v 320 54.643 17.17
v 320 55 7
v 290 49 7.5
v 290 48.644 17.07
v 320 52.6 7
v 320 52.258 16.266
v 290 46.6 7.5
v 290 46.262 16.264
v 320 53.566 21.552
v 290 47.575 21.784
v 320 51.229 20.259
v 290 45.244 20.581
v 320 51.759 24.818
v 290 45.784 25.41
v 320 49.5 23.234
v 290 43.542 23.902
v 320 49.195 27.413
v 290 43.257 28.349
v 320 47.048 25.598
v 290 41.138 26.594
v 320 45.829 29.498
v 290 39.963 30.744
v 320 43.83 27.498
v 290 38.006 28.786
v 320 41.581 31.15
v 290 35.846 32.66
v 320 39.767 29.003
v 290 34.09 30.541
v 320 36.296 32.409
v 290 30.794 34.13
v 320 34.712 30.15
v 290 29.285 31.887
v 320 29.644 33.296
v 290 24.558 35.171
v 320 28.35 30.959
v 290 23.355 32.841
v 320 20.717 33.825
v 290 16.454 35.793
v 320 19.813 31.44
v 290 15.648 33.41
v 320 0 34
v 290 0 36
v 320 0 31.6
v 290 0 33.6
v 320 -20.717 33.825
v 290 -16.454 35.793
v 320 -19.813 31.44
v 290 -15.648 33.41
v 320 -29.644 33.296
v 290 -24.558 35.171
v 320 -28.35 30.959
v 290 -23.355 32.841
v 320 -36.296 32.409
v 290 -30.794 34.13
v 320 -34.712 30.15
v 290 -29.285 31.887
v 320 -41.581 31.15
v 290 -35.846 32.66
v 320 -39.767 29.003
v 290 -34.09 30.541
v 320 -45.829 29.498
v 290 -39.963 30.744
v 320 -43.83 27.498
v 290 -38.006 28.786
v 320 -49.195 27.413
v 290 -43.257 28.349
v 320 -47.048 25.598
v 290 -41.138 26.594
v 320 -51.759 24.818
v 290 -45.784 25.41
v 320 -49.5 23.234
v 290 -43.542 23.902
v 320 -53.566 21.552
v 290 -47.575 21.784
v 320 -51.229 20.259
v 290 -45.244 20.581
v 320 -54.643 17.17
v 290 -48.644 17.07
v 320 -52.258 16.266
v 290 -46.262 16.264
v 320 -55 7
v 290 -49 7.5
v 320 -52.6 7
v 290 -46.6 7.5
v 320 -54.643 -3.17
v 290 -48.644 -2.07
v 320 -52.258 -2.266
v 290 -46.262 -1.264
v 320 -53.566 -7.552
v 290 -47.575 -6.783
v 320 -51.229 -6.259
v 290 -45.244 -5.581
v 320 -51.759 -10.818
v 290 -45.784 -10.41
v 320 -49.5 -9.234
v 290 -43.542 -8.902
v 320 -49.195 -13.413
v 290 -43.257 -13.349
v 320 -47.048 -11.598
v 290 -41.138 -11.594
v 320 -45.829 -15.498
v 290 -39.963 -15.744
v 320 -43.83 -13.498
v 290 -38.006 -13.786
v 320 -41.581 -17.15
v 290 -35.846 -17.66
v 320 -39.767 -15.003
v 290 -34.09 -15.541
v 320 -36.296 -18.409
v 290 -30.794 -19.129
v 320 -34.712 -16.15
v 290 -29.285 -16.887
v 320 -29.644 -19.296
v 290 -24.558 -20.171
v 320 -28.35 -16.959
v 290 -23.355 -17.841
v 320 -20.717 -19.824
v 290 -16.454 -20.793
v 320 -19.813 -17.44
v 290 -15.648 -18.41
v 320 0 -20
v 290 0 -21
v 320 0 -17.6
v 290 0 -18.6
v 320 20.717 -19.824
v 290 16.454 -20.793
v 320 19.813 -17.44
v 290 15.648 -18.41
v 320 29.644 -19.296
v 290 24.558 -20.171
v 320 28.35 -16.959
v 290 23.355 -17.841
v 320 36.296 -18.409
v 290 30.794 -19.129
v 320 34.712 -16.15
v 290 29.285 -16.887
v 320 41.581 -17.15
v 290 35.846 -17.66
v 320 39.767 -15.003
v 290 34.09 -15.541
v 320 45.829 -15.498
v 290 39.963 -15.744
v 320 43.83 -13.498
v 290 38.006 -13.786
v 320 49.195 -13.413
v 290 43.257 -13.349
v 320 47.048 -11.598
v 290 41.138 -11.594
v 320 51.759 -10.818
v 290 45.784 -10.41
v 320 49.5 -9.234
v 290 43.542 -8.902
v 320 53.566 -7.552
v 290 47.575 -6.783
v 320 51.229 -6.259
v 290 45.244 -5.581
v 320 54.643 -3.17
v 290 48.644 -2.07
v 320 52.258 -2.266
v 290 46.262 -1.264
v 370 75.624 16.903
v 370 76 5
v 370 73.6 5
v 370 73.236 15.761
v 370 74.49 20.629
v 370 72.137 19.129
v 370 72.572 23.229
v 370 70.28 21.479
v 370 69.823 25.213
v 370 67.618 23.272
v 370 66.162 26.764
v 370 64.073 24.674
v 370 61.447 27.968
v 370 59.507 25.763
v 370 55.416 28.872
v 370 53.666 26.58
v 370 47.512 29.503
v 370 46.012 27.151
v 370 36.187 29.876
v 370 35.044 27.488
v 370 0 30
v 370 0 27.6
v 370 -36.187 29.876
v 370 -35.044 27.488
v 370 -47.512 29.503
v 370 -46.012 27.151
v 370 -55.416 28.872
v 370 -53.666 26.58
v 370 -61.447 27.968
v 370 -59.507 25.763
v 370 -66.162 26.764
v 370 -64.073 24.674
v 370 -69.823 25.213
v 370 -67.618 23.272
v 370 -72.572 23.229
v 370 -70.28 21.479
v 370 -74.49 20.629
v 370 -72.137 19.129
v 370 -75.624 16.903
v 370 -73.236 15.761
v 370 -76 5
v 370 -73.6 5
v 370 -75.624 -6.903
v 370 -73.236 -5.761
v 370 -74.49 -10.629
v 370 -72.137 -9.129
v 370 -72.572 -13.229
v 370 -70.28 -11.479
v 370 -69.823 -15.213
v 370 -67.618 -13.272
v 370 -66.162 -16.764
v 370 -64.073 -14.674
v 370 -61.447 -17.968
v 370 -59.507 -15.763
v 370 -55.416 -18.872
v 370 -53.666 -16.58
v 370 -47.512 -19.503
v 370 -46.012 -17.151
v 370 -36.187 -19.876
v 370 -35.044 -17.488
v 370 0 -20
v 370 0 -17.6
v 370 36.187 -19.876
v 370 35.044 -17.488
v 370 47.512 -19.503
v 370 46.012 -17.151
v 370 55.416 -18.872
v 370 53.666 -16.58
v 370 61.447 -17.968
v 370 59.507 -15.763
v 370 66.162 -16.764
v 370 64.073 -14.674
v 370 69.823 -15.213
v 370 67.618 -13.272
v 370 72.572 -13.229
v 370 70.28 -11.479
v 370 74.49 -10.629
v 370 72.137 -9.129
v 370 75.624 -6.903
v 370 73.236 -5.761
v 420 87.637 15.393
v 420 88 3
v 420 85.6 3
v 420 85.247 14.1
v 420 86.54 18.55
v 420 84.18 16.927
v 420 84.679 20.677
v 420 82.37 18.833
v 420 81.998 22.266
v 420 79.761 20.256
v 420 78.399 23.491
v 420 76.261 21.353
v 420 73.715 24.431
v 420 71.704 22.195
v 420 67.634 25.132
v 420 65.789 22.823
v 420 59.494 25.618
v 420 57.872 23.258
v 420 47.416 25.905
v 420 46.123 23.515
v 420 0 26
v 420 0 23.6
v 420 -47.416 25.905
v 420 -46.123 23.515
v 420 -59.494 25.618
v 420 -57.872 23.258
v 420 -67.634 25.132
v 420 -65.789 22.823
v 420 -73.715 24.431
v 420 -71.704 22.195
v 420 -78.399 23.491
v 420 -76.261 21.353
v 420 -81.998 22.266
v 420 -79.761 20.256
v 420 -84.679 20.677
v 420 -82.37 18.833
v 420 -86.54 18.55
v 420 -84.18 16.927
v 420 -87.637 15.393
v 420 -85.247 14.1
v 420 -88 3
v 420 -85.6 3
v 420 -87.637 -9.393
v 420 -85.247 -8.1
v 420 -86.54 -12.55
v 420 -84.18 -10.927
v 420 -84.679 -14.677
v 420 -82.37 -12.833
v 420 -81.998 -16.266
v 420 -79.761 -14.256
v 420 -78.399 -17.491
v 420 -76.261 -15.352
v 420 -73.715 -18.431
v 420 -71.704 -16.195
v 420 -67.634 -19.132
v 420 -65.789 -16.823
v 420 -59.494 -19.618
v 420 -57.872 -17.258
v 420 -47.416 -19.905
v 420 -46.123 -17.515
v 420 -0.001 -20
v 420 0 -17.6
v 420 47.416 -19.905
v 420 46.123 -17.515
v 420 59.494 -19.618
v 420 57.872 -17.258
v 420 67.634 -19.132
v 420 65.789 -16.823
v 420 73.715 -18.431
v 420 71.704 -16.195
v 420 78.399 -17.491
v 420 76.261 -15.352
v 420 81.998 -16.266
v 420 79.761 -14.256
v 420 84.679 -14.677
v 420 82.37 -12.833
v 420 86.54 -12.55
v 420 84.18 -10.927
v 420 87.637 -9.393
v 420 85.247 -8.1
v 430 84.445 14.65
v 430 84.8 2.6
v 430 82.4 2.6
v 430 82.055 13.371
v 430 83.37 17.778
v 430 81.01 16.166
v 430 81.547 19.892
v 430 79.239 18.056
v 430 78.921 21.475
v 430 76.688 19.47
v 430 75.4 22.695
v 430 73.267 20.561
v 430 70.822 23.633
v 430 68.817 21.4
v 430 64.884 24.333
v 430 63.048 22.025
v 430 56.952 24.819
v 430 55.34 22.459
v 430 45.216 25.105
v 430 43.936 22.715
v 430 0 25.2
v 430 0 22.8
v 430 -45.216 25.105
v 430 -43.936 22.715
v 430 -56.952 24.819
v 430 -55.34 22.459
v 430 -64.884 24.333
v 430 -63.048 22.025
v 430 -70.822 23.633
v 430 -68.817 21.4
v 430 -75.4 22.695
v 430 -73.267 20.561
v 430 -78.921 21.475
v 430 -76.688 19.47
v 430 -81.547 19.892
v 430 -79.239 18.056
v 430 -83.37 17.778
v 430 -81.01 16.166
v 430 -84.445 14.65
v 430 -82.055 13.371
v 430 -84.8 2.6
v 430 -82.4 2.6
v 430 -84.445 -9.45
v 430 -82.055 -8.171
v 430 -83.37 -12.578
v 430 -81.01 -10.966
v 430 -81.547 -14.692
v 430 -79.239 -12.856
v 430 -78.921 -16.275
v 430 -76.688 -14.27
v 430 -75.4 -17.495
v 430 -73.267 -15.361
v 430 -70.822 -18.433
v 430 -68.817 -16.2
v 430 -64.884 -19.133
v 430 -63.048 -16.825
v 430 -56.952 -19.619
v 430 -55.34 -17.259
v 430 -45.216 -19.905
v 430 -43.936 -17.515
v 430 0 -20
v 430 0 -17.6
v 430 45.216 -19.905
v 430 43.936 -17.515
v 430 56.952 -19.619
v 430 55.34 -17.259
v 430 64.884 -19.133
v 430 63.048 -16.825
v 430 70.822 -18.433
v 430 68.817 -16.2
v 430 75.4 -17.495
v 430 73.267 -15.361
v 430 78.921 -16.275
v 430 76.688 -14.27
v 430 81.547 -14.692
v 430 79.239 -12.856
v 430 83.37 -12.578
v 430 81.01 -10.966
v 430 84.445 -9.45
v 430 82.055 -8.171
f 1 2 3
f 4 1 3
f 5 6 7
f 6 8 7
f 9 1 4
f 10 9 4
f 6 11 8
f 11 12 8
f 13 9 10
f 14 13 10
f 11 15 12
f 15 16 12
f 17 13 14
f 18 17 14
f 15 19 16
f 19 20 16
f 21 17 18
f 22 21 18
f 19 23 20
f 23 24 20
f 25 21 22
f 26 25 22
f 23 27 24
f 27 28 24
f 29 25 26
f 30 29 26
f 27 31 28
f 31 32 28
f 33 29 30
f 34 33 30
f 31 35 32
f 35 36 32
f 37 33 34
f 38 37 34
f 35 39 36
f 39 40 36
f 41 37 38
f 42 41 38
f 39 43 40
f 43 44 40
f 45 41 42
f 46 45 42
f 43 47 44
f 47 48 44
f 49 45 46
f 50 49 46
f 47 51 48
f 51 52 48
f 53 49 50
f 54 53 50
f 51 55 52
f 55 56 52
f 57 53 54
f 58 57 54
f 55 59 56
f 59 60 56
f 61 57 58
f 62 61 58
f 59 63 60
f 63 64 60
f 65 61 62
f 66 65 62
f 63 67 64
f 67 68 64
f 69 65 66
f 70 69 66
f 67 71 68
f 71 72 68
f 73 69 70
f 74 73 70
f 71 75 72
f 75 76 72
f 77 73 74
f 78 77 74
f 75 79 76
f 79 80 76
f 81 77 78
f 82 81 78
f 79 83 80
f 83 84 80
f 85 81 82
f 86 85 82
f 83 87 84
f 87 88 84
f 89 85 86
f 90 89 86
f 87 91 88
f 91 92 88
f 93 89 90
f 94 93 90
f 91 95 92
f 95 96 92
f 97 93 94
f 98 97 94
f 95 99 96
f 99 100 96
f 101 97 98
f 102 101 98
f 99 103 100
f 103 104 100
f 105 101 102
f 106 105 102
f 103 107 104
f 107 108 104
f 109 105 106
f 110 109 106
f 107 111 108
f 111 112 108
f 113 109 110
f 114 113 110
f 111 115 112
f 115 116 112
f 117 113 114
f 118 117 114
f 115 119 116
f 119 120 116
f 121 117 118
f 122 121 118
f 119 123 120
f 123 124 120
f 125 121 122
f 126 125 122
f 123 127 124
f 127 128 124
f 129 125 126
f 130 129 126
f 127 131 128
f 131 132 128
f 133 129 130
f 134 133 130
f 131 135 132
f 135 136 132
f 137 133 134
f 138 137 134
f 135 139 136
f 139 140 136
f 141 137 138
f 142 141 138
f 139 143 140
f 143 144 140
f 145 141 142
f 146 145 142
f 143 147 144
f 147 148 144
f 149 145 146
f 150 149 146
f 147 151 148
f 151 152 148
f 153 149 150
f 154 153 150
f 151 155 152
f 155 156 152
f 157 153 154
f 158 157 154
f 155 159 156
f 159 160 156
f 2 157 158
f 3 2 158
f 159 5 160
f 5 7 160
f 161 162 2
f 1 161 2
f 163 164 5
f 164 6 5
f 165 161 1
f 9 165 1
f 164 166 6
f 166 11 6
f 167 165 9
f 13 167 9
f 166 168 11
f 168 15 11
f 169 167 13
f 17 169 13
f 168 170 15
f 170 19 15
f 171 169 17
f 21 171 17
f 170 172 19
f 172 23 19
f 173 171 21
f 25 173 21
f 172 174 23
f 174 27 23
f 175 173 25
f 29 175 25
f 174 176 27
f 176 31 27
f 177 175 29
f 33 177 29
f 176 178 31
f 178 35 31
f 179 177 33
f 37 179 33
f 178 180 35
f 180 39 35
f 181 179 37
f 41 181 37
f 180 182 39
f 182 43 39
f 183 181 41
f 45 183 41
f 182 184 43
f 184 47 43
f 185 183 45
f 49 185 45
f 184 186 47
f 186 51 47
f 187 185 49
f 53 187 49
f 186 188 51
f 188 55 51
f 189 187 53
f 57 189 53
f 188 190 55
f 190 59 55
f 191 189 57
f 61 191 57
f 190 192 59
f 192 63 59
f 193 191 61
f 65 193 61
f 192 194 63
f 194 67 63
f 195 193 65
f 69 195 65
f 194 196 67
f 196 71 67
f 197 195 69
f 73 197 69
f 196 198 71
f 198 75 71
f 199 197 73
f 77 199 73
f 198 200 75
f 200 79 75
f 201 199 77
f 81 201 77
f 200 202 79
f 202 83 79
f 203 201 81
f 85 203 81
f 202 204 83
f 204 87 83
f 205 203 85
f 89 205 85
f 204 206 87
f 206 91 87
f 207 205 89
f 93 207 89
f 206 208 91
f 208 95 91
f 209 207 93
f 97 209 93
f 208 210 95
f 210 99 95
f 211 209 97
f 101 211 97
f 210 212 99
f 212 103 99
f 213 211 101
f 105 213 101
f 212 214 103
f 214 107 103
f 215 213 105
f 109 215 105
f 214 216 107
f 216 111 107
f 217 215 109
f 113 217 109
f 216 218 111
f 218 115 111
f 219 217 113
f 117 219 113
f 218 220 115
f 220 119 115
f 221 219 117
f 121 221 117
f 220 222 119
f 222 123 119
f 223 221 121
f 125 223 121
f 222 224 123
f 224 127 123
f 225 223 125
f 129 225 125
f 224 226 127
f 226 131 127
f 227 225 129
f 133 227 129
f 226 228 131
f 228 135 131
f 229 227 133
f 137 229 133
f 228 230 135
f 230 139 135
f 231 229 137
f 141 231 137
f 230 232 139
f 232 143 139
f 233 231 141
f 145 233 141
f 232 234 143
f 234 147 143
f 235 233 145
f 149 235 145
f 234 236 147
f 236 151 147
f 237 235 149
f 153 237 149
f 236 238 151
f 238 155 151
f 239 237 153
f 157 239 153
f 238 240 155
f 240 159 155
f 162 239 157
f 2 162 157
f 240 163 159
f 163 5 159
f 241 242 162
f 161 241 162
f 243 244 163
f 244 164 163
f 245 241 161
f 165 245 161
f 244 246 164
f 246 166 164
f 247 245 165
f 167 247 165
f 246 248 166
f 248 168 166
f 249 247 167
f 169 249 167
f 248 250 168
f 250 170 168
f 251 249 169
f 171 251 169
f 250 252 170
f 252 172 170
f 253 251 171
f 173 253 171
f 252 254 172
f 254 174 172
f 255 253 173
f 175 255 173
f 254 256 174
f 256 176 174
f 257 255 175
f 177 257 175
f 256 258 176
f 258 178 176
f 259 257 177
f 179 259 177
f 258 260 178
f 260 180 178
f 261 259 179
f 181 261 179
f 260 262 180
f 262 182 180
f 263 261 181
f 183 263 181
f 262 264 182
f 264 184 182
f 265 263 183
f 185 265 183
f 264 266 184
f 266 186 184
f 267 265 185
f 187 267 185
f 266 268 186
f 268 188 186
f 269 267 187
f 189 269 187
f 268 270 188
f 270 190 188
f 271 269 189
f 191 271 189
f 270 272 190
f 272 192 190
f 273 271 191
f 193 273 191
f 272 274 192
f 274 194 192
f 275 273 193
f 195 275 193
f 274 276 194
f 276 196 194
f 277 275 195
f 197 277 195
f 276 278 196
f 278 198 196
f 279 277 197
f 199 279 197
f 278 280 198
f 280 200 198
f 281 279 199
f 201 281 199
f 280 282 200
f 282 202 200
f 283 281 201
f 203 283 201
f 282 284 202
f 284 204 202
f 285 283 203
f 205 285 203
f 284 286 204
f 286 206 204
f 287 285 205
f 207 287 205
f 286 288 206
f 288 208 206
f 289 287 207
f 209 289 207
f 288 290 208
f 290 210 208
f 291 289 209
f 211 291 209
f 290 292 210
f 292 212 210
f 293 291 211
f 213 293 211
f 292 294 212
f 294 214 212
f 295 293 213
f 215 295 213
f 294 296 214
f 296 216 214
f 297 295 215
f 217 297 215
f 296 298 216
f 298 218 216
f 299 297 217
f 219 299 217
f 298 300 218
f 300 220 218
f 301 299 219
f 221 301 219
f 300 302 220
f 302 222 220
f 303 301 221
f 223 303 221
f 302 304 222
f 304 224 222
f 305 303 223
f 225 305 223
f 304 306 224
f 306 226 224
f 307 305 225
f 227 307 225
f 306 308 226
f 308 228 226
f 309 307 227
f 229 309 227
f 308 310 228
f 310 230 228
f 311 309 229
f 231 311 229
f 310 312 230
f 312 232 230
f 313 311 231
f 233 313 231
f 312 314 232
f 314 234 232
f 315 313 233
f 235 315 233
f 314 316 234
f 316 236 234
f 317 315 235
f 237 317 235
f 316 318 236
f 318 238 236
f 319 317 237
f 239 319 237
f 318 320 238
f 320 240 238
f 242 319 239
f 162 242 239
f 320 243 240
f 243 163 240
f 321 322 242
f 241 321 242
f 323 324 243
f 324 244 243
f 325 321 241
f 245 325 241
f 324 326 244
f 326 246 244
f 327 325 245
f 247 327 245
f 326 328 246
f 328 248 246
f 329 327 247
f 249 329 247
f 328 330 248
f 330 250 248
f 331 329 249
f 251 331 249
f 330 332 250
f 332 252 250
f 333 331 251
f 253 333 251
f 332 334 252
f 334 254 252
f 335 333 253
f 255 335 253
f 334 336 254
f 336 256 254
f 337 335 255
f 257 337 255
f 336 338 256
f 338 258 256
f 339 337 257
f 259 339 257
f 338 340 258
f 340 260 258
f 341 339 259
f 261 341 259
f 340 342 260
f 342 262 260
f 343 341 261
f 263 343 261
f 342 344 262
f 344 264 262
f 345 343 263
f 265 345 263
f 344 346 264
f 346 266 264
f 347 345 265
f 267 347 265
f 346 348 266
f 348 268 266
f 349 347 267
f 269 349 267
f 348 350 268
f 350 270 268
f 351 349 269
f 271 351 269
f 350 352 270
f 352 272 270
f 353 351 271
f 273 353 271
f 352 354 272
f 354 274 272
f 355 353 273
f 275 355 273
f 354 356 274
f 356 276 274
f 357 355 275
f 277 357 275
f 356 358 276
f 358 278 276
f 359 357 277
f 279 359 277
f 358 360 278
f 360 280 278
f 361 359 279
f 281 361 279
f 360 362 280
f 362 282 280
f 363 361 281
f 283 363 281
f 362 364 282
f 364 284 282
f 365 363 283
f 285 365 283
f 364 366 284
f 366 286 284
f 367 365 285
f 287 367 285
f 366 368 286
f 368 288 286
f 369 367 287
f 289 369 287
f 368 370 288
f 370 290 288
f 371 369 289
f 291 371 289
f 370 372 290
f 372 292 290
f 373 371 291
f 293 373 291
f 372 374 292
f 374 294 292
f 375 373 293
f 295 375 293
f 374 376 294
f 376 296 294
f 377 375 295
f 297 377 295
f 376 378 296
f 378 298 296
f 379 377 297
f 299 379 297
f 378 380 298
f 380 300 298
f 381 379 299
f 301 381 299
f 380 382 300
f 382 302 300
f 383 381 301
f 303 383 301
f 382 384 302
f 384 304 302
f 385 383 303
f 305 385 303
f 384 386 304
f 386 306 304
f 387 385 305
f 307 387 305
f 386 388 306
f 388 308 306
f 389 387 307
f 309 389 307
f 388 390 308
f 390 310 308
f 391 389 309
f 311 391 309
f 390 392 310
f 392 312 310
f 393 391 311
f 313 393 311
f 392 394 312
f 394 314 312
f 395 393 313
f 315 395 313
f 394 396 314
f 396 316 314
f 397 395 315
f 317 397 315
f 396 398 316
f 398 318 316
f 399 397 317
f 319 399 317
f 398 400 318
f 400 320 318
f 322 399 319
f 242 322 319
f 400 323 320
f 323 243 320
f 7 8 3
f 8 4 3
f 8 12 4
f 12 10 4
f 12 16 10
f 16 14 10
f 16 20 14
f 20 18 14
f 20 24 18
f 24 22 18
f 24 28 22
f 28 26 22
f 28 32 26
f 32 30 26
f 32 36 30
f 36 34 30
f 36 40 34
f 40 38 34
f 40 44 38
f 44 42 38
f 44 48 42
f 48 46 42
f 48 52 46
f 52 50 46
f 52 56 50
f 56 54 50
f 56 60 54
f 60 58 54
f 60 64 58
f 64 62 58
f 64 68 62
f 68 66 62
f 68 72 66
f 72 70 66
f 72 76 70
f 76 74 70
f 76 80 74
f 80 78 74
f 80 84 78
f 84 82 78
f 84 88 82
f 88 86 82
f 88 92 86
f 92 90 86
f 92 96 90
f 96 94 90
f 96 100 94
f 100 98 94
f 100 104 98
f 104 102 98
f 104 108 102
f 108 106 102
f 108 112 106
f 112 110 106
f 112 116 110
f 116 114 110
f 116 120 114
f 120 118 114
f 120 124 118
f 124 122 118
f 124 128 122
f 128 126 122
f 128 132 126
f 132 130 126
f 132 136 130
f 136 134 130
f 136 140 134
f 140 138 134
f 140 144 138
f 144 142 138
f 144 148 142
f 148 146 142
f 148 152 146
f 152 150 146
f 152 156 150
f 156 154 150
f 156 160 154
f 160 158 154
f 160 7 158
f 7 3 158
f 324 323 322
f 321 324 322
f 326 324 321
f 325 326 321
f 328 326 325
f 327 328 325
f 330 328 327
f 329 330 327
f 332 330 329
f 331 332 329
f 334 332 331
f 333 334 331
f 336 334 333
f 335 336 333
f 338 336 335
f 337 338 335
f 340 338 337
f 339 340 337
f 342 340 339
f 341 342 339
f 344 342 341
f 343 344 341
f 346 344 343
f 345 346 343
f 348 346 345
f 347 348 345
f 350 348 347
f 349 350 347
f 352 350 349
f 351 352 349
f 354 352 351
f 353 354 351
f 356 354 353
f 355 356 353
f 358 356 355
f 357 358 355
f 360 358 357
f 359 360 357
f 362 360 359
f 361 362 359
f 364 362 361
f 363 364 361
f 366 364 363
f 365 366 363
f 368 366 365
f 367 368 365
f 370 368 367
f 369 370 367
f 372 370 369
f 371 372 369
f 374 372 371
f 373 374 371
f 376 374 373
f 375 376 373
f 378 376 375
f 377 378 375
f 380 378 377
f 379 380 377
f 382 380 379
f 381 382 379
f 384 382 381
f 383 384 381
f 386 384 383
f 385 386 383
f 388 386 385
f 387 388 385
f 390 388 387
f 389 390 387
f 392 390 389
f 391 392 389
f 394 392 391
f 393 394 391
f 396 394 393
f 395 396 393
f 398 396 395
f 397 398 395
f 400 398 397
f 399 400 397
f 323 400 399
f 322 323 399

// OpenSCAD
polyhedron(points=[[290.0, 49.0, 7.5], [290.0, 48.64423, 17.070239], [290.0, 47.574723, 21.783495], [290.0, 45.784054, 25.410498], [290.0, 43.256713, 28.349284], [290.0, 39.962978, 30.743773], [290.0, 35.846137, 32.659517], [290.0, 30.793488, 34.129501], [290.0, 24.557588, 35.171013], [290.0, 16.454094, 35.793072], [290.0, 0.0, 36.0], [290.0, -16.454094, 35.793072], [290.0, -24.557588, 35.171013], [290.0, -30.793488, 34.129501], [290.0, -35.846137, 32.659517], [290.0, -39.962978, 30.743773], [290.0, -43.256713, 28.349284], [290.0, -45.784054, 25.410498], [290.0, -47.574723, 21.783495], [290.0, -48.64423, 17.070239], [290.0, -49.0, 7.5], [290.0, -48.64423, -2.070239], [290.0, -47.574723, -6.783495], [290.0, -45.784054, -10.410498], [290.0, -43.256713, -13.349284], [290.0, -39.962978, -15.743773], [290.0, -35.846137, -17.659517], [290.0, -30.793488, -19.129501], [290.0, -24.557588, -20.171013], [290.0, -16.454094, -20.793072], [290.0, -0.0, -21.0], [290.0, 16.454094, -20.793072], [290.0, 24.557588, -20.171013], [290.0, 30.793488, -19.129501], [290.0, 35.846137, -17.659517], [290.0, 39.962978, -15.743773], [290.0, 43.256713, -13.349284], [290.0, 45.784054, -10.410498], [290.0, 47.574723, -6.783495], [290.0, 48.64423, -2.070239], [290.0, 46.6, 7.5], [290.0, 46.261655, 16.264324], [290.0, 45.244533, 20.580674], [290.0, 43.54157, 23.902246], [290.0, 41.138017, 26.593555], [290.0, 38.005608, 28.786403], [290.0, 34.090408, 30.540821], [290.0, 29.285235, 31.887017], [290.0, 23.354767, 32.840822], [290.0, 15.64818, 33.410498], [290.0, 0.0, 33.6], [290.0, -15.64818, 33.410498], [290.0, -23.354767, 32.840822], [290.0, -29.285235, 31.887017], [290.0, -34.090408, 30.540821], [290.0, -38.005608, 28.786403], [290.0, -41.138017, 26.593555], [290.0, -43.54157, 23.902246], [290.0, -45.244533, 20.580674], [290.0, -46.261655, 16.264324], [290.0, -46.6, 7.5], [290.0, -46.261655, -1.264324], [290.0, -45.244533, -5.580674], [290.0, -43.54157, -8.902246], [290.0, -41.138017, -11.593555], [290.0, -38.005608, -13.786403], [290.0, -34.090408, -15.540821], [290.0, -29.285235, -16.887017], [290.0, -23.354767, -17.840822], [290.0, -15.64818, -18.410498], [290.0, -0.0, -18.6], [290.0, 15.64818, -18.410498], [290.0, 23.354767, -17.840822], [290.0, 29.285235, -16.887017], [290.0, 34.090408, -15.540821], [290.0, 38.005608, -13.786403], [290.0, 41.138017, -11.593555], [290.0, 43.54157, -8.902246], [290.0, 45.244533, -5.580674], [290.0, 46.261655, -1.264324], [320.0, 55.0, 7.0], [320.0, 54.642564, 17.17017], [320.0, 53.566385, 21.55236], [320.0, 51.758801, 24.818127], [320.0, 49.194816, 27.412675], [320.0, 45.82941, 29.498074], [320.0, 41.581374, 31.150183], [320.0, 36.296186, 32.408866], [320.0, 29.643696, 33.296225], [320.0, 20.717013, 33.824532], [320.0, 0.0, 34.0], [320.0, -20.717013, 33.824532], [320.0, -29.643696, 33.296225], [320.0, -36.296186, 32.408866], [320.0, -41.581374, 31.150183], [320.0, -45.82941, 29.498074], [320.0, -49.194816, 27.412675], [320.0, -51.758801, 24.818127], [320.0, -53.566385, 21.55236], [320.0, -54.642564, 17.17017], [320.0, -55.0, 7.0], [320.0, -54.642564, -3.17017], [320.0, -53.566385, -7.55236], [320.0, -51.758801, -10.818127], [320.0, -49.194816, -13.412675], [320.0, -45.82941, -15.498074], [320.0, -41.581374, -17.150183], [320.0, -36.296186, -18.408866], [320.0, -29.643696, -19.296225], [320.0, -20.717013, -19.824532], [320.0, -0.0, -20.0], [320.0, 20.717013, -19.824532], [320.0, 29.643696, -19.296225], [320.0, 36.296186, -18.408866], [320.0, 41.581374, -17.150183], [320.0, 45.82941, -15.498074], [320.0, 49.194816, -13.412675], [320.0, 51.758801, -10.818127], [320.0, 53.566385, -7.55236], [320.0, 54.642564, -3.17017], [320.0, 52.6, 7.0], [320.0, 52.258162, 16.266155], [320.0, 51.228942, 20.258817], [320.0, 49.500235, 23.234294], [320.0, 47.048134, 25.598215], [320.0, 43.829582, 27.498245], [320.0, 39.766914, 29.0035], [320.0, 34.712352, 30.1503], [320.0, 28.350153, 30.958783], [320.0, 19.812998, 31.440129], [320.0, 0.0, 31.6], [320.0, -19.812998, 31.440129], [320.0, -28.350153, 30.958783], [320.0, -34.712352, 30.1503], [320.0, -39.766914, 29.0035], [320.0, -43.829582, 27.498245], [320.0, -47.048134, 25.598215], [320.0, -49.500235, 23.234294], [320.0, -51.228942, 20.258817], [320.0, -52.258162, 16.266155], [320.0, -52.6, 7.0], [320.0, -52.258162, -2.266155], [320.0, -51.228942, -6.258817], [320.0, -49.500235, -9.234294], [320.0, -47.048134, -11.598215], [320.0, -43.829582, -13.498245], [320.0, -39.766914, -15.0035], [320.0, -34.712352, -16.1503], [320.0, -28.350153, -16.958783], [320.0, -19.812998, -17.440129], [320.0, -0.0, -17.6], [320.0, 19.812998, -17.440129], [320.0, 28.350153, -16.958783], [320.0, 34.712352, -16.1503], [320.0, 39.766914, -15.0035], [320.0, 43.829582, -13.498245], [320.0, 47.048134, -11.598215], [320.0, 49.500235, -9.234294], [320.0, 51.228942, -6.258817], [320.0, 52.258162, -2.266155], [370.0, 76.0, 5.0], [370.0, 75.624334, 16.903454], [370.0, 74.489682, 20.629063], [370.0, 72.571474, 23.228827], [370.0, 69.822702, 25.212847], [370.0, 66.161843, 26.763764], [370.0, 61.447054, 27.967994], [370.0, 55.415633, 28.872195], [370.0, 47.512353, 29.503185], [370.0, 36.186499, 29.876426], [370.0, 2.5e-05, 30.0], [370.0, -36.186499, 29.876426], [370.0, -47.512353, 29.503185], [370.0, -55.415633, 28.872195], [370.0, -61.447054, 27.967994], [370.0, -66.161843, 26.763764], [370.0, -69.822702, 25.212847], [370.0, -72.571474, 23.228827], [370.0, -74.489682, 20.629063], [370.0, -75.624334, 16.903454], [370.0, -76.0, 5.000011], [370.0, -75.624334, -6.903454], [370.0, -74.489682, -10.629063], [370.0, -72.571474, -13.228827], [370.0, -69.822702, -15.212847], [370.0, -66.161843, -16.763764], [370.0, -61.447054, -17.967994], [370.0, -55.415633, -18.872195], [370.0, -47.512353, -19.503185], [370.0, -36.186499, -19.876426], [370.0, -3.9e-05, -20.0], [370.0, 36.186499, -19.876426], [370.0, 47.512353, -19.503185], [370.0, 55.415633, -18.872195], [370.0, 61.447054, -17.967994], [370.0, 66.161843, -16.763764], [370.0, 69.822702, -15.212847], [370.0, 72.571474, -13.228827], [370.0, 74.489682, -10.629063], [370.0, 75.624334, -6.903454], [370.0, 73.6, 5.0], [370.0, 73.236197, 15.760722], [370.0, 72.137377, 19.128673], [370.0, 70.279744, 21.478859], [370.0, 67.617774, 23.272413], [370.0, 64.072521, 24.674443], [370.0, 59.506621, 25.763067], [370.0, 53.665666, 26.580465], [370.0, 46.011963, 27.150879], [370.0, 35.043768, 27.488289], [370.0, 2.4e-05, 27.6], [370.0, -35.043768, 27.488289], [370.0, -46.011963, 27.150879], [370.0, -53.665666, 26.580465], [370.0, -59.506621, 25.763067], [370.0, -64.072521, 24.674443], [370.0, -67.617774, 23.272413], [370.0, -70.279744, 21.478859], [370.0, -72.137377, 19.128673], [370.0, -73.236197, 15.760722], [370.0, -73.6, 5.00001], [370.0, -73.236197, -5.760722], [370.0, -72.137377, -9.128673], [370.0, -70.279744, -11.478859], [370.0, -67.617774, -13.272413], [370.0, -64.072521, -14.674443], [370.0, -59.506621, -15.763067], [370.0, -53.665666, -16.580465], [370.0, -46.011963, -17.150879], [370.0, -35.043768, -17.488289], [370.0, -3.7e-05, -17.6], [370.0, 35.043768, -17.488289], [370.0, 46.011963, -17.150879], [370.0, 53.665666, -16.580465], [370.0, 59.506621, -15.763067], [370.0, 64.072521, -14.674443], [370.0, 67.617774, -13.272413], [370.0, 70.279744, -11.478859], [370.0, 72.137377, -9.128673], [370.0, 73.236197, -5.760722], [420.0, 88.0, 3.0], [420.0, 87.637366, 15.392873], [420.0, 86.540244, 18.549698], [420.0, 84.679113, 20.677062], [420.0, 81.997741, 22.266407], [420.0, 78.399087, 23.490671], [420.0, 73.714949, 24.431228], [420.0, 67.633977, 25.132041], [420.0, 59.494497, 25.618473], [420.0, 47.416208, 25.905221], [420.0, 0.000347, 26.0], [420.0, -47.416208, 25.905221], [420.0, -59.494497, 25.618473], [420.0, -67.633977, 25.132041], [420.0, -73.714949, 24.431228], [420.0, -78.399087, 23.490671], [420.0, -81.997741, 22.266407], [420.0, -84.679113, 20.677062], [420.0, -86.540244, 18.549698], [420.0, -87.637366, 15.392873], [420.0, -88.0, 3.000114], [420.0, -87.637366, -9.392873], [420.0, -86.540244, -12.549698], [420.0, -84.679113, -14.677062], [420.0, -81.997741, -16.266407], [420.0, -78.399087, -17.490671], [420.0, -73.714949, -18.431228], [420.0, -67.633977, -19.132041], [420.0, -59.494497, -19.618473], [420.0, -47.416208, -19.905221], [420.0, -0.0005, -20.0], [420.0, 47.416208, -19.905221], [420.0, 59.494497, -19.618473], [420.0, 67.633977, -19.132041], [420.0, 73.714949, -18.431228], [420.0, 78.399087, -17.490671], [420.0, 81.997741, -16.266407], [420.0, 84.679113, -14.677062], [420.0, 86.540244, -12.549698], [420.0, 87.637366, -9.392873], [420.0, 85.6, 3.0], [420.0, 85.247256, 14.099703], [420.0, 84.180055, 16.927121], [420.0, 82.369683, 18.832499], [420.0, 79.761439, 20.255999], [420.0, 76.26093, 21.352514], [420.0, 71.704541, 22.194926], [420.0, 65.789414, 22.822611], [420.0, 57.871919, 23.258284], [420.0, 46.123039, 23.515111], [420.0, 0.000337, 23.6], [420.0, -46.123039, 23.515111], [420.0, -57.871919, 23.258284], [420.0, -65.789414, 22.822611], [420.0, -71.704541, 22.194926], [420.0, -76.26093, 21.352514], [420.0, -79.761439, 20.255999], [420.0, -82.369683, 18.832499], [420.0, -84.180055, 16.927121], [420.0, -85.247256, 14.099703], [420.0, -85.6, 3.000102], [420.0, -85.247256, -8.099703], [420.0, -84.180055, -10.927121], [420.0, -82.369683, -12.832499], [420.0, -79.761439, -14.255999], [420.0, -76.26093, -15.352514], [420.0, -71.704541, -16.194926], [420.0, -65.789414, -16.822611], [420.0, -57.871919, -17.258284], [420.0, -46.123039, -17.515111], [420.0, -0.000487, -17.6], [420.0, 46.123039, -17.515111], [420.0, 57.871919, -17.258284], [420.0, 65.789414, -16.822611], [420.0, 71.704541, -16.194926], [420.0, 76.26093, -15.352514], [420.0, 79.761439, -14.255999], [420.0, 82.369683, -12.832499], [420.0, 84.180055, -10.927121], [420.0, 85.247256, -8.099703], [430.0, 84.8, 2.6], [430.0, 84.444642, 14.650381], [430.0, 83.369686, 17.778229], [430.0, 81.546687, 19.892314], [430.0, 78.92145, 21.474588], [430.0, 75.400429, 22.694926], [430.0, 70.821464, 23.633311], [430.0, 64.884434, 24.332961], [430.0, 56.951939, 24.818808], [430.0, 45.21559, 25.105294], [430.0, 0.000271, 25.2], [430.0, -45.21559, 25.105294], [430.0, -56.951939, 24.818808], [430.0, -64.884434, 24.332961], [430.0, -70.821464, 23.633311], [430.0, -75.400429, 22.694926], [430.0, -78.92145, 21.474588], [430.0, -81.546687, 19.892314], [430.0, -83.369686, 17.778229], [430.0, -84.444642, 14.650381], [430.0, -84.8, 2.600091], [430.0, -84.444642, -9.450381], [430.0, -83.369686, -12.578229], [430.0, -81.546687, -14.692314], [430.0, -78.92145, -16.274588], [430.0, -75.400429, -17.494926], [430.0, -70.821464, -18.433311], [430.0, -64.884434, -19.132961], [430.0, -56.951939, -19.618808], [430.0, -45.21559, -19.905294], [430.0, -0.000393, -20.0], [430.0, 45.21559, -19.905294], [430.0, 56.951939, -19.618808], [430.0, 64.884434, -19.132961], [430.0, 70.821464, -18.433311], [430.0, 75.400429, -17.494926], [430.0, 78.92145, -16.274588], [430.0, 81.546687, -14.692314], [430.0, 83.369686, -12.578229], [430.0, 84.444642, -9.450381], [430.0, 82.4, 2.6], [430.0, 82.054699, 13.370695], [430.0, 81.010167, 16.166382], [430.0, 79.238762, 18.055962], [430.0, 76.687824, 19.470207], [430.0, 73.266455, 20.560951], [430.0, 68.817083, 21.399685], [430.0, 63.048082, 22.025036], [430.0, 55.340092, 22.459288], [430.0, 43.935904, 22.715351], [430.0, 0.000263, 22.8], [430.0, -43.935904, 22.715351], [430.0, -55.340092, 22.459288], [430.0, -63.048082, 22.025036], [430.0, -68.817083, 21.399685], [430.0, -73.266455, 20.560951], [430.0, -76.687824, 19.470207], [430.0, -79.238762, 18.055962], [430.0, -81.010167, 16.166382], [430.0, -82.054699, 13.370695], [430.0, -82.4, 2.600082], [430.0, -82.054699, -8.170695], [430.0, -81.010167, -10.966382], [430.0, -79.238762, -12.855962], [430.0, -76.687824, -14.270207], [430.0, -73.266455, -15.360951], [430.0, -68.817083, -16.199685], [430.0, -63.048082, -16.825036], [430.0, -55.340092, -17.259288], [430.0, -43.935904, -17.515351], [430.0, -0.000382, -17.6], [430.0, 43.935904, -17.515351], [430.0, 55.340092, -17.259288], [430.0, 63.048082, -16.825036], [430.0, 68.817083, -16.199685], [430.0, 73.266455, -15.360951], [430.0, 76.687824, -14.270207], [430.0, 79.238762, -12.855962], [430.0, 81.010167, -10.966382], [430.0, 82.054699, -8.170695]], faces=[[0, 80, 81], [0, 81, 1], [40, 121, 120], [40, 41, 121], [1, 81, 82], [1, 82, 2], [41, 122, 121], [41, 42, 122], [2, 82, 83], [2, 83, 3], [42, 123, 122], [42, 43, 123], [3, 83, 84], [3, 84, 4], [43, 124, 123], [43, 44, 124], [4, 84, 85], [4, 85, 5], [44, 125, 124], [44, 45, 125], [5, 85, 86], [5, 86, 6], [45, 126, 125], [45, 46, 126], [6, 86, 87], [6, 87, 7], [46, 127, 126], [46, 47, 127], [7, 87, 88], [7, 88, 8], [47, 128, 127], [47, 48, 128], [8, 88, 89], [8, 89, 9], [48, 129, 128], [48, 49, 129], [9, 89, 90], [9, 90, 10], [49, 130, 129], [49, 50, 130], [10, 90, 91], [10, 91, 11], [50, 131, 130], [50, 51, 131], [11, 91, 92], [11, 92, 12], [51, 132, 131], [51, 52, 132], [12, 92, 93], [12, 93, 13], [52, 133, 132], [52, 53, 133], [13, 93, 94], [13, 94, 14], [53, 134, 133], [53, 54, 134], [14, 94, 95], [14, 95, 15], [54, 135, 134], [54, 55, 135], [15, 95, 96], [15, 96, 16], [55, 136, 135], [55, 56, 136], [16, 96, 97], [16, 97, 17], [56, 137, 136], [56, 57, 137], [17, 97, 98], [17, 98, 18], [57, 138, 137], [57, 58, 138], [18, 98, 99], [18, 99, 19], [58, 139, 138], [58, 59, 139], [19, 99, 100], [19, 100, 20], [59, 140, 139], [59, 60, 140], [20, 100, 101], [20, 101, 21], [60, 141, 140], [60, 61, 141], [21, 101, 102], [21, 102, 22], [61, 142, 141], [61, 62, 142], [22, 102, 103], [22, 103, 23], [62, 143, 142], [62, 63, 143], [23, 103, 104], [23, 104, 24], [63, 144, 143], [63, 64, 144], [24, 104, 105], [24, 105, 25], [64, 145, 144], [64, 65, 145], [25, 105, 106], [25, 106, 26], [65, 146, 145], [65, 66, 146], [26, 106, 107], [26, 107, 27], [66, 147, 146], [66, 67, 147], [27, 107, 108], [27, 108, 28], [67, 148, 147], [67, 68, 148], [28, 108, 109], [28, 109, 29], [68, 149, 148], [68, 69, 149], [29, 109, 110], [29, 110, 30], [69, 150, 149], [69, 70, 150], [30, 110, 111], [30, 111, 31], [70, 151, 150], [70, 71, 151], [31, 111, 112], [31, 112, 32], [71, 152, 151], [71, 72, 152], [32, 112, 113], [32, 113, 33], [72, 153, 152], [72, 73, 153], [33, 113, 114], [33, 114, 34], [73, 154, 153], [73, 74, 154], [34, 114, 115], [34, 115, 35], [74, 155, 154], [74, 75, 155], [35, 115, 116], [35, 116, 36], [75, 156, 155], [75, 76, 156], [36, 116, 117], [36, 117, 37], [76, 157, 156], [76, 77, 157], [37, 117, 118], [37, 118, 38], [77, 158, 157], [77, 78, 158], [38, 118, 119], [38, 119, 39], [78, 159, 158], [78, 79, 159], [39, 119, 80], [39, 80, 0], [79, 120, 159], [79, 40, 120], [80, 160, 161], [80, 161, 81], [120, 201, 200], [120, 121, 201], [81, 161, 162], [81, 162, 82], [121, 202, 201], [121, 122, 202], [82, 162, 163], [82, 163, 83], [122, 203, 202], [122, 123, 203], [83, 163, 164], [83, 164, 84], [123, 204, 203], [123, 124, 204], [84, 164, 165], [84, 165, 85], [124, 205, 204], [124, 125, 205], [85, 165, 166], [85, 166, 86], [125, 206, 205], [125, 126, 206], [86, 166, 167], [86, 167, 87], [126, 207, 206], [126, 127, 207], [87, 167, 168], [87, 168, 88], [127, 208, 207], [127, 128, 208], [88, 168, 169], [88, 169, 89], [128, 209, 208], [128, 129, 209], [89, 169, 170], [89, 170, 90], [129, 210, 209], [129, 130, 210], [90, 170, 171], [90, 171, 91], [130, 211, 210], [130, 131, 211], [91, 171, 172], [91, 172, 92], [131, 212, 211], [131, 132, 212], [92, 172, 173], [92, 173, 93], [132, 213, 212], [132, 133, 213], [93, 173, 174], [93, 174, 94], [133, 214, 213], [133, 134, 214], [94, 174, 175], [94, 175, 95], [134, 215, 214], [134, 135, 215], [95, 175, 176], [95, 176, 96], [135, 216, 215], [135, 136, 216], [96, 176, 177], [96, 177, 97], [136, 217, 216], [136, 137, 217], [97, 177, 178], [97, 178, 98], [137, 218, 217], [137, 138, 218], [98, 178, 179], [98, 179, 99], [138, 219, 218], [138, 139, 219], [99, 179, 180], [99, 180, 100], [139, 220, 219], [139, 140, 220], [100, 180, 181], [100, 181, 101], [140, 221, 220], [140, 141, 221], [101, 181, 182], [101, 182, 102], [141, 222, 221], [141, 142, 222], [102, 182, 183], [102, 183, 103], [142, 223, 222], [142, 143, 223], [103, 183, 184], [103, 184, 104], [143, 224, 223], [143, 144, 224], [104, 184, 185], [104, 185, 105], [144, 225, 224], [144, 145, 225], [105, 185, 186], [105, 186, 106], [145, 226, 225], [145, 146, 226], [106, 186, 187], [106, 187, 107], [146, 227, 226], [146, 147, 227], [107, 187, 188], [107, 188, 108], [147, 228, 227], [147, 148, 228], [108, 188, 189], [108, 189, 109], [148, 229, 228], [148, 149, 229], [109, 189, 190], [109, 190, 110], [149, 230, 229], [149, 150, 230], [110, 190, 191], [110, 191, 111], [150, 231, 230], [150, 151, 231], [111, 191, 192], [111, 192, 112], [151, 232, 231], [151, 152, 232], [112, 192, 193], [112, 193, 113], [152, 233, 232], [152, 153, 233], [113, 193, 194], [113, 194, 114], [153, 234, 233], [153, 154, 234], [114, 194, 195], [114, 195, 115], [154, 235, 234], [154, 155, 235], [115, 195, 196], [115, 196, 116], [155, 236, 235], [155, 156, 236], [116, 196, 197], [116, 197, 117], [156, 237, 236], [156, 157, 237], [117, 197, 198], [117, 198, 118], [157, 238, 237], [157, 158, 238], [118, 198, 199], [118, 199, 119], [158, 239, 238], [158, 159, 239], [119, 199, 160], [119, 160, 80], [159, 200, 239], [159, 120, 200], [160, 240, 241], [160, 241, 161], [200, 281, 280], [200, 201, 281], [161, 241, 242], [161, 242, 162], [201, 282, 281], [201, 202, 282], [162, 242, 243], [162, 243, 163], [202, 283, 282], [202, 203, 283], [163, 243, 244], [163, 244, 164], [203, 284, 283], [203, 204, 284], [164, 244, 245], [164, 245, 165], [204, 285, 284], [204, 205, 285], [165, 245, 246], [165, 246, 166], [205, 286, 285], [205, 206, 286], [166, 246, 247], [166, 247, 167], [206, 287, 286], [206, 207, 287], [167, 247, 248], [167, 248, 168], [207, 288, 287], [207, 208, 288], [168, 248, 249], [168, 249, 169], [208, 289, 288], [208, 209, 289], [169, 249, 250], [169, 250, 170], [209, 290, 289], [209, 210, 290], [170, 250, 251], [170, 251, 171], [210, 291, 290], [210, 211, 291], [171, 251, 252], [171, 252, 172], [211, 292, 291], [211, 212, 292], [172, 252, 253], [172, 253, 173], [212, 293, 292], [212, 213, 293], [173, 253, 254], [173, 254, 174], [213, 294, 293], [213, 214, 294], [174, 254, 255], [174, 255, 175], [214, 295, 294], [214, 215, 295], [175, 255, 256], [175, 256, 176], [215, 296, 295], [215, 216, 296], [176, 256, 257], [176, 257, 177], [216, 297, 296], [216, 217, 297], [177, 257, 258], [177, 258, 178], [217, 298, 297], [217, 218, 298], [178, 258, 259], [178, 259, 179], [218, 299, 298], [218, 219, 299], [179, 259, 260], [179, 260, 180], [219, 300, 299], [219, 220, 300], [180, 260, 261], [180, 261, 181], [220, 301, 300], [220, 221, 301], [181, 261, 262], [181, 262, 182], [221, 302, 301], [221, 222, 302], [182, 262, 263], [182, 263, 183], [222, 303, 302], [222, 223, 303], [183, 263, 264], [183, 264, 184], [223, 304, 303], [223, 224, 304], [184, 264, 265], [184, 265, 185], [224, 305, 304], [224, 225, 305], [185, 265, 266], [185, 266, 186], [225, 306, 305], [225, 226, 306], [186, 266, 267], [186, 267, 187], [226, 307, 306], [226, 227, 307], [187, 267, 268], [187, 268, 188], [227, 308, 307], [227, 228, 308], [188, 268, 269], [188, 269, 189], [228, 309, 308], [228, 229, 309], [189, 269, 270], [189, 270, 190], [229, 310, 309], [229, 230, 310], [190, 270, 271], [190, 271, 191], [230, 311, 310], [230, 231, 311], [191, 271, 272], [191, 272, 192], [231, 312, 311], [231, 232, 312], [192, 272, 273], [192, 273, 193], [232, 313, 312], [232, 233, 313], [193, 273, 274], [193, 274, 194], [233, 314, 313], [233, 234, 314], [194, 274, 275], [194, 275, 195], [234, 315, 314], [234, 235, 315], [195, 275, 276], [195, 276, 196], [235, 316, 315], [235, 236, 316], [196, 276, 277], [196, 277, 197], [236, 317, 316], [236, 237, 317], [197, 277, 278], [197, 278, 198], [237, 318, 317], [237, 238, 318], [198, 278, 279], [198, 279, 199], [238, 319, 318], [238, 239, 319], [199, 279, 240], [199, 240, 160], [239, 280, 319], [239, 200, 280], [240, 320, 321], [240, 321, 241], [280, 361, 360], [280, 281, 361], [241, 321, 322], [241, 322, 242], [281, 362, 361], [281, 282, 362], [242, 322, 323], [242, 323, 243], [282, 363, 362], [282, 283, 363], [243, 323, 324], [243, 324, 244], [283, 364, 363], [283, 284, 364], [244, 324, 325], [244, 325, 245], [284, 365, 364], [284, 285, 365], [245, 325, 326], [245, 326, 246], [285, 366, 365], [285, 286, 366], [246, 326, 327], [246, 327, 247], [286, 367, 366], [286, 287, 367], [247, 327, 328], [247, 328, 248], [287, 368, 367], [287, 288, 368], [248, 328, 329], [248, 329, 249], [288, 369, 368], [288, 289, 369], [249, 329, 330], [249, 330, 250], [289, 370, 369], [289, 290, 370], [250, 330, 331], [250, 331, 251], [290, 371, 370], [290, 291, 371], [251, 331, 332], [251, 332, 252], [291, 372, 371], [291, 292, 372], [252, 332, 333], [252, 333, 253], [292, 373, 372], [292, 293, 373], [253, 333, 334], [253, 334, 254], [293, 374, 373], [293, 294, 374], [254, 334, 335], [254, 335, 255], [294, 375, 374], [294, 295, 375], [255, 335, 336], [255, 336, 256], [295, 376, 375], [295, 296, 376], [256, 336, 337], [256, 337, 257], [296, 377, 376], [296, 297, 377], [257, 337, 338], [257, 338, 258], [297, 378, 377], [297, 298, 378], [258, 338, 339], [258, 339, 259], [298, 379, 378], [298, 299, 379], [259, 339, 340], [259, 340, 260], [299, 380, 379], [299, 300, 380], [260, 340, 341], [260, 341, 261], [300, 381, 380], [300, 301, 381], [261, 341, 342], [261, 342, 262], [301, 382, 381], [301, 302, 382], [262, 342, 343], [262, 343, 263], [302, 383, 382], [302, 303, 383], [263, 343, 344], [263, 344, 264], [303, 384, 383], [303, 304, 384], [264, 344, 345], [264, 345, 265], [304, 385, 384], [304, 305, 385], [265, 345, 346], [265, 346, 266], [305, 386, 385], [305, 306, 386], [266, 346, 347], [266, 347, 267], [306, 387, 386], [306, 307, 387], [267, 347, 348], [267, 348, 268], [307, 388, 387], [307, 308, 388], [268, 348, 349], [268, 349, 269], [308, 389, 388], [308, 309, 389], [269, 349, 350], [269, 350, 270], [309, 390, 389], [309, 310, 390], [270, 350, 351], [270, 351, 271], [310, 391, 390], [310, 311, 391], [271, 351, 352], [271, 352, 272], [311, 392, 391], [311, 312, 392], [272, 352, 353], [272, 353, 273], [312, 393, 392], [312, 313, 393], [273, 353, 354], [273, 354, 274], [313, 394, 393], [313, 314, 394], [274, 354, 355], [274, 355, 275], [314, 395, 394], [314, 315, 395], [275, 355, 356], [275, 356, 276], [315, 396, 395], [315, 316, 396], [276, 356, 357], [276, 357, 277], [316, 397, 396], [316, 317, 397], [277, 357, 358], [277, 358, 278], [317, 398, 397], [317, 318, 398], [278, 358, 359], [278, 359, 279], [318, 399, 398], [318, 319, 399], [279, 359, 320], [279, 320, 240], [319, 360, 399], [319, 280, 360], [0, 41, 40], [0, 1, 41], [1, 42, 41], [1, 2, 42], [2, 43, 42], [2, 3, 43], [3, 44, 43], [3, 4, 44], [4, 45, 44], [4, 5, 45], [5, 46, 45], [5, 6, 46], [6, 47, 46], [6, 7, 47], [7, 48, 47], [7, 8, 48], [8, 49, 48], [8, 9, 49], [9, 50, 49], [9, 10, 50], [10, 51, 50], [10, 11, 51], [11, 52, 51], [11, 12, 52], [12, 53, 52], [12, 13, 53], [13, 54, 53], [13, 14, 54], [14, 55, 54], [14, 15, 55], [15, 56, 55], [15, 16, 56], [16, 57, 56], [16, 17, 57], [17, 58, 57], [17, 18, 58], [18, 59, 58], [18, 19, 59], [19, 60, 59], [19, 20, 60], [20, 61, 60], [20, 21, 61], [21, 62, 61], [21, 22, 62], [22, 63, 62], [22, 23, 63], [23, 64, 63], [23, 24, 64], [24, 65, 64], [24, 25, 65], [25, 66, 65], [25, 26, 66], [26, 67, 66], [26, 27, 67], [27, 68, 67], [27, 28, 68], [28, 69, 68], [28, 29, 69], [29, 70, 69], [29, 30, 70], [30, 71, 70], [30, 31, 71], [31, 72, 71], [31, 32, 72], [32, 73, 72], [32, 33, 73], [33, 74, 73], [33, 34, 74], [34, 75, 74], [34, 35, 75], [35, 76, 75], [35, 36, 76], [36, 77, 76], [36, 37, 77], [37, 78, 77], [37, 38, 78], [38, 79, 78], [38, 39, 79], [39, 40, 79], [39, 0, 40], [320, 360, 361], [320, 361, 321], [321, 361, 362], [321, 362, 322], [322, 362, 363], [322, 363, 323], [323, 363, 364], [323, 364, 324], [324, 364, 365], [324, 365, 325], [325, 365, 366], [325, 366, 326], [326, 366, 367], [326, 367, 327], [327, 367, 368], [327, 368, 328], [328, 368, 369], [328, 369, 329], [329, 369, 370], [329, 370, 330], [330, 370, 371], [330, 371, 331], [331, 371, 372], [331, 372, 332], [332, 372, 373], [332, 373, 333], [333, 373, 374], [333, 374, 334], [334, 374, 375], [334, 375, 335], [335, 375, 376], [335, 376, 336], [336, 376, 377], [336, 377, 337], [337, 377, 378], [337, 378, 338], [338, 378, 379], [338, 379, 339], [339, 379, 380], [339, 380, 340], [340, 380, 381], [340, 381, 341], [341, 381, 382], [341, 382, 342], [342, 382, 383], [342, 383, 343], [343, 383, 384], [343, 384, 344], [344, 384, 385], [344, 385, 345], [345, 385, 386], [345, 386, 346], [346, 386, 387], [346, 387, 347], [347, 387, 388], [347, 388, 348], [348, 388, 389], [348, 389, 349], [349, 389, 390], [349, 390, 350], [350, 390, 391], [350, 391, 351], [351, 391, 392], [351, 392, 352], [352, 392, 393], [352, 393, 353], [353, 393, 394], [353, 394, 354], [354, 394, 395], [354, 395, 355], [355, 395, 396], [355, 396, 356], [356, 396, 397], [356, 397, 357], [357, 397, 398], [357, 398, 358], [358, 398, 399], [358, 399, 359], [359, 399, 360], [359, 360, 320]], convexity=30);
